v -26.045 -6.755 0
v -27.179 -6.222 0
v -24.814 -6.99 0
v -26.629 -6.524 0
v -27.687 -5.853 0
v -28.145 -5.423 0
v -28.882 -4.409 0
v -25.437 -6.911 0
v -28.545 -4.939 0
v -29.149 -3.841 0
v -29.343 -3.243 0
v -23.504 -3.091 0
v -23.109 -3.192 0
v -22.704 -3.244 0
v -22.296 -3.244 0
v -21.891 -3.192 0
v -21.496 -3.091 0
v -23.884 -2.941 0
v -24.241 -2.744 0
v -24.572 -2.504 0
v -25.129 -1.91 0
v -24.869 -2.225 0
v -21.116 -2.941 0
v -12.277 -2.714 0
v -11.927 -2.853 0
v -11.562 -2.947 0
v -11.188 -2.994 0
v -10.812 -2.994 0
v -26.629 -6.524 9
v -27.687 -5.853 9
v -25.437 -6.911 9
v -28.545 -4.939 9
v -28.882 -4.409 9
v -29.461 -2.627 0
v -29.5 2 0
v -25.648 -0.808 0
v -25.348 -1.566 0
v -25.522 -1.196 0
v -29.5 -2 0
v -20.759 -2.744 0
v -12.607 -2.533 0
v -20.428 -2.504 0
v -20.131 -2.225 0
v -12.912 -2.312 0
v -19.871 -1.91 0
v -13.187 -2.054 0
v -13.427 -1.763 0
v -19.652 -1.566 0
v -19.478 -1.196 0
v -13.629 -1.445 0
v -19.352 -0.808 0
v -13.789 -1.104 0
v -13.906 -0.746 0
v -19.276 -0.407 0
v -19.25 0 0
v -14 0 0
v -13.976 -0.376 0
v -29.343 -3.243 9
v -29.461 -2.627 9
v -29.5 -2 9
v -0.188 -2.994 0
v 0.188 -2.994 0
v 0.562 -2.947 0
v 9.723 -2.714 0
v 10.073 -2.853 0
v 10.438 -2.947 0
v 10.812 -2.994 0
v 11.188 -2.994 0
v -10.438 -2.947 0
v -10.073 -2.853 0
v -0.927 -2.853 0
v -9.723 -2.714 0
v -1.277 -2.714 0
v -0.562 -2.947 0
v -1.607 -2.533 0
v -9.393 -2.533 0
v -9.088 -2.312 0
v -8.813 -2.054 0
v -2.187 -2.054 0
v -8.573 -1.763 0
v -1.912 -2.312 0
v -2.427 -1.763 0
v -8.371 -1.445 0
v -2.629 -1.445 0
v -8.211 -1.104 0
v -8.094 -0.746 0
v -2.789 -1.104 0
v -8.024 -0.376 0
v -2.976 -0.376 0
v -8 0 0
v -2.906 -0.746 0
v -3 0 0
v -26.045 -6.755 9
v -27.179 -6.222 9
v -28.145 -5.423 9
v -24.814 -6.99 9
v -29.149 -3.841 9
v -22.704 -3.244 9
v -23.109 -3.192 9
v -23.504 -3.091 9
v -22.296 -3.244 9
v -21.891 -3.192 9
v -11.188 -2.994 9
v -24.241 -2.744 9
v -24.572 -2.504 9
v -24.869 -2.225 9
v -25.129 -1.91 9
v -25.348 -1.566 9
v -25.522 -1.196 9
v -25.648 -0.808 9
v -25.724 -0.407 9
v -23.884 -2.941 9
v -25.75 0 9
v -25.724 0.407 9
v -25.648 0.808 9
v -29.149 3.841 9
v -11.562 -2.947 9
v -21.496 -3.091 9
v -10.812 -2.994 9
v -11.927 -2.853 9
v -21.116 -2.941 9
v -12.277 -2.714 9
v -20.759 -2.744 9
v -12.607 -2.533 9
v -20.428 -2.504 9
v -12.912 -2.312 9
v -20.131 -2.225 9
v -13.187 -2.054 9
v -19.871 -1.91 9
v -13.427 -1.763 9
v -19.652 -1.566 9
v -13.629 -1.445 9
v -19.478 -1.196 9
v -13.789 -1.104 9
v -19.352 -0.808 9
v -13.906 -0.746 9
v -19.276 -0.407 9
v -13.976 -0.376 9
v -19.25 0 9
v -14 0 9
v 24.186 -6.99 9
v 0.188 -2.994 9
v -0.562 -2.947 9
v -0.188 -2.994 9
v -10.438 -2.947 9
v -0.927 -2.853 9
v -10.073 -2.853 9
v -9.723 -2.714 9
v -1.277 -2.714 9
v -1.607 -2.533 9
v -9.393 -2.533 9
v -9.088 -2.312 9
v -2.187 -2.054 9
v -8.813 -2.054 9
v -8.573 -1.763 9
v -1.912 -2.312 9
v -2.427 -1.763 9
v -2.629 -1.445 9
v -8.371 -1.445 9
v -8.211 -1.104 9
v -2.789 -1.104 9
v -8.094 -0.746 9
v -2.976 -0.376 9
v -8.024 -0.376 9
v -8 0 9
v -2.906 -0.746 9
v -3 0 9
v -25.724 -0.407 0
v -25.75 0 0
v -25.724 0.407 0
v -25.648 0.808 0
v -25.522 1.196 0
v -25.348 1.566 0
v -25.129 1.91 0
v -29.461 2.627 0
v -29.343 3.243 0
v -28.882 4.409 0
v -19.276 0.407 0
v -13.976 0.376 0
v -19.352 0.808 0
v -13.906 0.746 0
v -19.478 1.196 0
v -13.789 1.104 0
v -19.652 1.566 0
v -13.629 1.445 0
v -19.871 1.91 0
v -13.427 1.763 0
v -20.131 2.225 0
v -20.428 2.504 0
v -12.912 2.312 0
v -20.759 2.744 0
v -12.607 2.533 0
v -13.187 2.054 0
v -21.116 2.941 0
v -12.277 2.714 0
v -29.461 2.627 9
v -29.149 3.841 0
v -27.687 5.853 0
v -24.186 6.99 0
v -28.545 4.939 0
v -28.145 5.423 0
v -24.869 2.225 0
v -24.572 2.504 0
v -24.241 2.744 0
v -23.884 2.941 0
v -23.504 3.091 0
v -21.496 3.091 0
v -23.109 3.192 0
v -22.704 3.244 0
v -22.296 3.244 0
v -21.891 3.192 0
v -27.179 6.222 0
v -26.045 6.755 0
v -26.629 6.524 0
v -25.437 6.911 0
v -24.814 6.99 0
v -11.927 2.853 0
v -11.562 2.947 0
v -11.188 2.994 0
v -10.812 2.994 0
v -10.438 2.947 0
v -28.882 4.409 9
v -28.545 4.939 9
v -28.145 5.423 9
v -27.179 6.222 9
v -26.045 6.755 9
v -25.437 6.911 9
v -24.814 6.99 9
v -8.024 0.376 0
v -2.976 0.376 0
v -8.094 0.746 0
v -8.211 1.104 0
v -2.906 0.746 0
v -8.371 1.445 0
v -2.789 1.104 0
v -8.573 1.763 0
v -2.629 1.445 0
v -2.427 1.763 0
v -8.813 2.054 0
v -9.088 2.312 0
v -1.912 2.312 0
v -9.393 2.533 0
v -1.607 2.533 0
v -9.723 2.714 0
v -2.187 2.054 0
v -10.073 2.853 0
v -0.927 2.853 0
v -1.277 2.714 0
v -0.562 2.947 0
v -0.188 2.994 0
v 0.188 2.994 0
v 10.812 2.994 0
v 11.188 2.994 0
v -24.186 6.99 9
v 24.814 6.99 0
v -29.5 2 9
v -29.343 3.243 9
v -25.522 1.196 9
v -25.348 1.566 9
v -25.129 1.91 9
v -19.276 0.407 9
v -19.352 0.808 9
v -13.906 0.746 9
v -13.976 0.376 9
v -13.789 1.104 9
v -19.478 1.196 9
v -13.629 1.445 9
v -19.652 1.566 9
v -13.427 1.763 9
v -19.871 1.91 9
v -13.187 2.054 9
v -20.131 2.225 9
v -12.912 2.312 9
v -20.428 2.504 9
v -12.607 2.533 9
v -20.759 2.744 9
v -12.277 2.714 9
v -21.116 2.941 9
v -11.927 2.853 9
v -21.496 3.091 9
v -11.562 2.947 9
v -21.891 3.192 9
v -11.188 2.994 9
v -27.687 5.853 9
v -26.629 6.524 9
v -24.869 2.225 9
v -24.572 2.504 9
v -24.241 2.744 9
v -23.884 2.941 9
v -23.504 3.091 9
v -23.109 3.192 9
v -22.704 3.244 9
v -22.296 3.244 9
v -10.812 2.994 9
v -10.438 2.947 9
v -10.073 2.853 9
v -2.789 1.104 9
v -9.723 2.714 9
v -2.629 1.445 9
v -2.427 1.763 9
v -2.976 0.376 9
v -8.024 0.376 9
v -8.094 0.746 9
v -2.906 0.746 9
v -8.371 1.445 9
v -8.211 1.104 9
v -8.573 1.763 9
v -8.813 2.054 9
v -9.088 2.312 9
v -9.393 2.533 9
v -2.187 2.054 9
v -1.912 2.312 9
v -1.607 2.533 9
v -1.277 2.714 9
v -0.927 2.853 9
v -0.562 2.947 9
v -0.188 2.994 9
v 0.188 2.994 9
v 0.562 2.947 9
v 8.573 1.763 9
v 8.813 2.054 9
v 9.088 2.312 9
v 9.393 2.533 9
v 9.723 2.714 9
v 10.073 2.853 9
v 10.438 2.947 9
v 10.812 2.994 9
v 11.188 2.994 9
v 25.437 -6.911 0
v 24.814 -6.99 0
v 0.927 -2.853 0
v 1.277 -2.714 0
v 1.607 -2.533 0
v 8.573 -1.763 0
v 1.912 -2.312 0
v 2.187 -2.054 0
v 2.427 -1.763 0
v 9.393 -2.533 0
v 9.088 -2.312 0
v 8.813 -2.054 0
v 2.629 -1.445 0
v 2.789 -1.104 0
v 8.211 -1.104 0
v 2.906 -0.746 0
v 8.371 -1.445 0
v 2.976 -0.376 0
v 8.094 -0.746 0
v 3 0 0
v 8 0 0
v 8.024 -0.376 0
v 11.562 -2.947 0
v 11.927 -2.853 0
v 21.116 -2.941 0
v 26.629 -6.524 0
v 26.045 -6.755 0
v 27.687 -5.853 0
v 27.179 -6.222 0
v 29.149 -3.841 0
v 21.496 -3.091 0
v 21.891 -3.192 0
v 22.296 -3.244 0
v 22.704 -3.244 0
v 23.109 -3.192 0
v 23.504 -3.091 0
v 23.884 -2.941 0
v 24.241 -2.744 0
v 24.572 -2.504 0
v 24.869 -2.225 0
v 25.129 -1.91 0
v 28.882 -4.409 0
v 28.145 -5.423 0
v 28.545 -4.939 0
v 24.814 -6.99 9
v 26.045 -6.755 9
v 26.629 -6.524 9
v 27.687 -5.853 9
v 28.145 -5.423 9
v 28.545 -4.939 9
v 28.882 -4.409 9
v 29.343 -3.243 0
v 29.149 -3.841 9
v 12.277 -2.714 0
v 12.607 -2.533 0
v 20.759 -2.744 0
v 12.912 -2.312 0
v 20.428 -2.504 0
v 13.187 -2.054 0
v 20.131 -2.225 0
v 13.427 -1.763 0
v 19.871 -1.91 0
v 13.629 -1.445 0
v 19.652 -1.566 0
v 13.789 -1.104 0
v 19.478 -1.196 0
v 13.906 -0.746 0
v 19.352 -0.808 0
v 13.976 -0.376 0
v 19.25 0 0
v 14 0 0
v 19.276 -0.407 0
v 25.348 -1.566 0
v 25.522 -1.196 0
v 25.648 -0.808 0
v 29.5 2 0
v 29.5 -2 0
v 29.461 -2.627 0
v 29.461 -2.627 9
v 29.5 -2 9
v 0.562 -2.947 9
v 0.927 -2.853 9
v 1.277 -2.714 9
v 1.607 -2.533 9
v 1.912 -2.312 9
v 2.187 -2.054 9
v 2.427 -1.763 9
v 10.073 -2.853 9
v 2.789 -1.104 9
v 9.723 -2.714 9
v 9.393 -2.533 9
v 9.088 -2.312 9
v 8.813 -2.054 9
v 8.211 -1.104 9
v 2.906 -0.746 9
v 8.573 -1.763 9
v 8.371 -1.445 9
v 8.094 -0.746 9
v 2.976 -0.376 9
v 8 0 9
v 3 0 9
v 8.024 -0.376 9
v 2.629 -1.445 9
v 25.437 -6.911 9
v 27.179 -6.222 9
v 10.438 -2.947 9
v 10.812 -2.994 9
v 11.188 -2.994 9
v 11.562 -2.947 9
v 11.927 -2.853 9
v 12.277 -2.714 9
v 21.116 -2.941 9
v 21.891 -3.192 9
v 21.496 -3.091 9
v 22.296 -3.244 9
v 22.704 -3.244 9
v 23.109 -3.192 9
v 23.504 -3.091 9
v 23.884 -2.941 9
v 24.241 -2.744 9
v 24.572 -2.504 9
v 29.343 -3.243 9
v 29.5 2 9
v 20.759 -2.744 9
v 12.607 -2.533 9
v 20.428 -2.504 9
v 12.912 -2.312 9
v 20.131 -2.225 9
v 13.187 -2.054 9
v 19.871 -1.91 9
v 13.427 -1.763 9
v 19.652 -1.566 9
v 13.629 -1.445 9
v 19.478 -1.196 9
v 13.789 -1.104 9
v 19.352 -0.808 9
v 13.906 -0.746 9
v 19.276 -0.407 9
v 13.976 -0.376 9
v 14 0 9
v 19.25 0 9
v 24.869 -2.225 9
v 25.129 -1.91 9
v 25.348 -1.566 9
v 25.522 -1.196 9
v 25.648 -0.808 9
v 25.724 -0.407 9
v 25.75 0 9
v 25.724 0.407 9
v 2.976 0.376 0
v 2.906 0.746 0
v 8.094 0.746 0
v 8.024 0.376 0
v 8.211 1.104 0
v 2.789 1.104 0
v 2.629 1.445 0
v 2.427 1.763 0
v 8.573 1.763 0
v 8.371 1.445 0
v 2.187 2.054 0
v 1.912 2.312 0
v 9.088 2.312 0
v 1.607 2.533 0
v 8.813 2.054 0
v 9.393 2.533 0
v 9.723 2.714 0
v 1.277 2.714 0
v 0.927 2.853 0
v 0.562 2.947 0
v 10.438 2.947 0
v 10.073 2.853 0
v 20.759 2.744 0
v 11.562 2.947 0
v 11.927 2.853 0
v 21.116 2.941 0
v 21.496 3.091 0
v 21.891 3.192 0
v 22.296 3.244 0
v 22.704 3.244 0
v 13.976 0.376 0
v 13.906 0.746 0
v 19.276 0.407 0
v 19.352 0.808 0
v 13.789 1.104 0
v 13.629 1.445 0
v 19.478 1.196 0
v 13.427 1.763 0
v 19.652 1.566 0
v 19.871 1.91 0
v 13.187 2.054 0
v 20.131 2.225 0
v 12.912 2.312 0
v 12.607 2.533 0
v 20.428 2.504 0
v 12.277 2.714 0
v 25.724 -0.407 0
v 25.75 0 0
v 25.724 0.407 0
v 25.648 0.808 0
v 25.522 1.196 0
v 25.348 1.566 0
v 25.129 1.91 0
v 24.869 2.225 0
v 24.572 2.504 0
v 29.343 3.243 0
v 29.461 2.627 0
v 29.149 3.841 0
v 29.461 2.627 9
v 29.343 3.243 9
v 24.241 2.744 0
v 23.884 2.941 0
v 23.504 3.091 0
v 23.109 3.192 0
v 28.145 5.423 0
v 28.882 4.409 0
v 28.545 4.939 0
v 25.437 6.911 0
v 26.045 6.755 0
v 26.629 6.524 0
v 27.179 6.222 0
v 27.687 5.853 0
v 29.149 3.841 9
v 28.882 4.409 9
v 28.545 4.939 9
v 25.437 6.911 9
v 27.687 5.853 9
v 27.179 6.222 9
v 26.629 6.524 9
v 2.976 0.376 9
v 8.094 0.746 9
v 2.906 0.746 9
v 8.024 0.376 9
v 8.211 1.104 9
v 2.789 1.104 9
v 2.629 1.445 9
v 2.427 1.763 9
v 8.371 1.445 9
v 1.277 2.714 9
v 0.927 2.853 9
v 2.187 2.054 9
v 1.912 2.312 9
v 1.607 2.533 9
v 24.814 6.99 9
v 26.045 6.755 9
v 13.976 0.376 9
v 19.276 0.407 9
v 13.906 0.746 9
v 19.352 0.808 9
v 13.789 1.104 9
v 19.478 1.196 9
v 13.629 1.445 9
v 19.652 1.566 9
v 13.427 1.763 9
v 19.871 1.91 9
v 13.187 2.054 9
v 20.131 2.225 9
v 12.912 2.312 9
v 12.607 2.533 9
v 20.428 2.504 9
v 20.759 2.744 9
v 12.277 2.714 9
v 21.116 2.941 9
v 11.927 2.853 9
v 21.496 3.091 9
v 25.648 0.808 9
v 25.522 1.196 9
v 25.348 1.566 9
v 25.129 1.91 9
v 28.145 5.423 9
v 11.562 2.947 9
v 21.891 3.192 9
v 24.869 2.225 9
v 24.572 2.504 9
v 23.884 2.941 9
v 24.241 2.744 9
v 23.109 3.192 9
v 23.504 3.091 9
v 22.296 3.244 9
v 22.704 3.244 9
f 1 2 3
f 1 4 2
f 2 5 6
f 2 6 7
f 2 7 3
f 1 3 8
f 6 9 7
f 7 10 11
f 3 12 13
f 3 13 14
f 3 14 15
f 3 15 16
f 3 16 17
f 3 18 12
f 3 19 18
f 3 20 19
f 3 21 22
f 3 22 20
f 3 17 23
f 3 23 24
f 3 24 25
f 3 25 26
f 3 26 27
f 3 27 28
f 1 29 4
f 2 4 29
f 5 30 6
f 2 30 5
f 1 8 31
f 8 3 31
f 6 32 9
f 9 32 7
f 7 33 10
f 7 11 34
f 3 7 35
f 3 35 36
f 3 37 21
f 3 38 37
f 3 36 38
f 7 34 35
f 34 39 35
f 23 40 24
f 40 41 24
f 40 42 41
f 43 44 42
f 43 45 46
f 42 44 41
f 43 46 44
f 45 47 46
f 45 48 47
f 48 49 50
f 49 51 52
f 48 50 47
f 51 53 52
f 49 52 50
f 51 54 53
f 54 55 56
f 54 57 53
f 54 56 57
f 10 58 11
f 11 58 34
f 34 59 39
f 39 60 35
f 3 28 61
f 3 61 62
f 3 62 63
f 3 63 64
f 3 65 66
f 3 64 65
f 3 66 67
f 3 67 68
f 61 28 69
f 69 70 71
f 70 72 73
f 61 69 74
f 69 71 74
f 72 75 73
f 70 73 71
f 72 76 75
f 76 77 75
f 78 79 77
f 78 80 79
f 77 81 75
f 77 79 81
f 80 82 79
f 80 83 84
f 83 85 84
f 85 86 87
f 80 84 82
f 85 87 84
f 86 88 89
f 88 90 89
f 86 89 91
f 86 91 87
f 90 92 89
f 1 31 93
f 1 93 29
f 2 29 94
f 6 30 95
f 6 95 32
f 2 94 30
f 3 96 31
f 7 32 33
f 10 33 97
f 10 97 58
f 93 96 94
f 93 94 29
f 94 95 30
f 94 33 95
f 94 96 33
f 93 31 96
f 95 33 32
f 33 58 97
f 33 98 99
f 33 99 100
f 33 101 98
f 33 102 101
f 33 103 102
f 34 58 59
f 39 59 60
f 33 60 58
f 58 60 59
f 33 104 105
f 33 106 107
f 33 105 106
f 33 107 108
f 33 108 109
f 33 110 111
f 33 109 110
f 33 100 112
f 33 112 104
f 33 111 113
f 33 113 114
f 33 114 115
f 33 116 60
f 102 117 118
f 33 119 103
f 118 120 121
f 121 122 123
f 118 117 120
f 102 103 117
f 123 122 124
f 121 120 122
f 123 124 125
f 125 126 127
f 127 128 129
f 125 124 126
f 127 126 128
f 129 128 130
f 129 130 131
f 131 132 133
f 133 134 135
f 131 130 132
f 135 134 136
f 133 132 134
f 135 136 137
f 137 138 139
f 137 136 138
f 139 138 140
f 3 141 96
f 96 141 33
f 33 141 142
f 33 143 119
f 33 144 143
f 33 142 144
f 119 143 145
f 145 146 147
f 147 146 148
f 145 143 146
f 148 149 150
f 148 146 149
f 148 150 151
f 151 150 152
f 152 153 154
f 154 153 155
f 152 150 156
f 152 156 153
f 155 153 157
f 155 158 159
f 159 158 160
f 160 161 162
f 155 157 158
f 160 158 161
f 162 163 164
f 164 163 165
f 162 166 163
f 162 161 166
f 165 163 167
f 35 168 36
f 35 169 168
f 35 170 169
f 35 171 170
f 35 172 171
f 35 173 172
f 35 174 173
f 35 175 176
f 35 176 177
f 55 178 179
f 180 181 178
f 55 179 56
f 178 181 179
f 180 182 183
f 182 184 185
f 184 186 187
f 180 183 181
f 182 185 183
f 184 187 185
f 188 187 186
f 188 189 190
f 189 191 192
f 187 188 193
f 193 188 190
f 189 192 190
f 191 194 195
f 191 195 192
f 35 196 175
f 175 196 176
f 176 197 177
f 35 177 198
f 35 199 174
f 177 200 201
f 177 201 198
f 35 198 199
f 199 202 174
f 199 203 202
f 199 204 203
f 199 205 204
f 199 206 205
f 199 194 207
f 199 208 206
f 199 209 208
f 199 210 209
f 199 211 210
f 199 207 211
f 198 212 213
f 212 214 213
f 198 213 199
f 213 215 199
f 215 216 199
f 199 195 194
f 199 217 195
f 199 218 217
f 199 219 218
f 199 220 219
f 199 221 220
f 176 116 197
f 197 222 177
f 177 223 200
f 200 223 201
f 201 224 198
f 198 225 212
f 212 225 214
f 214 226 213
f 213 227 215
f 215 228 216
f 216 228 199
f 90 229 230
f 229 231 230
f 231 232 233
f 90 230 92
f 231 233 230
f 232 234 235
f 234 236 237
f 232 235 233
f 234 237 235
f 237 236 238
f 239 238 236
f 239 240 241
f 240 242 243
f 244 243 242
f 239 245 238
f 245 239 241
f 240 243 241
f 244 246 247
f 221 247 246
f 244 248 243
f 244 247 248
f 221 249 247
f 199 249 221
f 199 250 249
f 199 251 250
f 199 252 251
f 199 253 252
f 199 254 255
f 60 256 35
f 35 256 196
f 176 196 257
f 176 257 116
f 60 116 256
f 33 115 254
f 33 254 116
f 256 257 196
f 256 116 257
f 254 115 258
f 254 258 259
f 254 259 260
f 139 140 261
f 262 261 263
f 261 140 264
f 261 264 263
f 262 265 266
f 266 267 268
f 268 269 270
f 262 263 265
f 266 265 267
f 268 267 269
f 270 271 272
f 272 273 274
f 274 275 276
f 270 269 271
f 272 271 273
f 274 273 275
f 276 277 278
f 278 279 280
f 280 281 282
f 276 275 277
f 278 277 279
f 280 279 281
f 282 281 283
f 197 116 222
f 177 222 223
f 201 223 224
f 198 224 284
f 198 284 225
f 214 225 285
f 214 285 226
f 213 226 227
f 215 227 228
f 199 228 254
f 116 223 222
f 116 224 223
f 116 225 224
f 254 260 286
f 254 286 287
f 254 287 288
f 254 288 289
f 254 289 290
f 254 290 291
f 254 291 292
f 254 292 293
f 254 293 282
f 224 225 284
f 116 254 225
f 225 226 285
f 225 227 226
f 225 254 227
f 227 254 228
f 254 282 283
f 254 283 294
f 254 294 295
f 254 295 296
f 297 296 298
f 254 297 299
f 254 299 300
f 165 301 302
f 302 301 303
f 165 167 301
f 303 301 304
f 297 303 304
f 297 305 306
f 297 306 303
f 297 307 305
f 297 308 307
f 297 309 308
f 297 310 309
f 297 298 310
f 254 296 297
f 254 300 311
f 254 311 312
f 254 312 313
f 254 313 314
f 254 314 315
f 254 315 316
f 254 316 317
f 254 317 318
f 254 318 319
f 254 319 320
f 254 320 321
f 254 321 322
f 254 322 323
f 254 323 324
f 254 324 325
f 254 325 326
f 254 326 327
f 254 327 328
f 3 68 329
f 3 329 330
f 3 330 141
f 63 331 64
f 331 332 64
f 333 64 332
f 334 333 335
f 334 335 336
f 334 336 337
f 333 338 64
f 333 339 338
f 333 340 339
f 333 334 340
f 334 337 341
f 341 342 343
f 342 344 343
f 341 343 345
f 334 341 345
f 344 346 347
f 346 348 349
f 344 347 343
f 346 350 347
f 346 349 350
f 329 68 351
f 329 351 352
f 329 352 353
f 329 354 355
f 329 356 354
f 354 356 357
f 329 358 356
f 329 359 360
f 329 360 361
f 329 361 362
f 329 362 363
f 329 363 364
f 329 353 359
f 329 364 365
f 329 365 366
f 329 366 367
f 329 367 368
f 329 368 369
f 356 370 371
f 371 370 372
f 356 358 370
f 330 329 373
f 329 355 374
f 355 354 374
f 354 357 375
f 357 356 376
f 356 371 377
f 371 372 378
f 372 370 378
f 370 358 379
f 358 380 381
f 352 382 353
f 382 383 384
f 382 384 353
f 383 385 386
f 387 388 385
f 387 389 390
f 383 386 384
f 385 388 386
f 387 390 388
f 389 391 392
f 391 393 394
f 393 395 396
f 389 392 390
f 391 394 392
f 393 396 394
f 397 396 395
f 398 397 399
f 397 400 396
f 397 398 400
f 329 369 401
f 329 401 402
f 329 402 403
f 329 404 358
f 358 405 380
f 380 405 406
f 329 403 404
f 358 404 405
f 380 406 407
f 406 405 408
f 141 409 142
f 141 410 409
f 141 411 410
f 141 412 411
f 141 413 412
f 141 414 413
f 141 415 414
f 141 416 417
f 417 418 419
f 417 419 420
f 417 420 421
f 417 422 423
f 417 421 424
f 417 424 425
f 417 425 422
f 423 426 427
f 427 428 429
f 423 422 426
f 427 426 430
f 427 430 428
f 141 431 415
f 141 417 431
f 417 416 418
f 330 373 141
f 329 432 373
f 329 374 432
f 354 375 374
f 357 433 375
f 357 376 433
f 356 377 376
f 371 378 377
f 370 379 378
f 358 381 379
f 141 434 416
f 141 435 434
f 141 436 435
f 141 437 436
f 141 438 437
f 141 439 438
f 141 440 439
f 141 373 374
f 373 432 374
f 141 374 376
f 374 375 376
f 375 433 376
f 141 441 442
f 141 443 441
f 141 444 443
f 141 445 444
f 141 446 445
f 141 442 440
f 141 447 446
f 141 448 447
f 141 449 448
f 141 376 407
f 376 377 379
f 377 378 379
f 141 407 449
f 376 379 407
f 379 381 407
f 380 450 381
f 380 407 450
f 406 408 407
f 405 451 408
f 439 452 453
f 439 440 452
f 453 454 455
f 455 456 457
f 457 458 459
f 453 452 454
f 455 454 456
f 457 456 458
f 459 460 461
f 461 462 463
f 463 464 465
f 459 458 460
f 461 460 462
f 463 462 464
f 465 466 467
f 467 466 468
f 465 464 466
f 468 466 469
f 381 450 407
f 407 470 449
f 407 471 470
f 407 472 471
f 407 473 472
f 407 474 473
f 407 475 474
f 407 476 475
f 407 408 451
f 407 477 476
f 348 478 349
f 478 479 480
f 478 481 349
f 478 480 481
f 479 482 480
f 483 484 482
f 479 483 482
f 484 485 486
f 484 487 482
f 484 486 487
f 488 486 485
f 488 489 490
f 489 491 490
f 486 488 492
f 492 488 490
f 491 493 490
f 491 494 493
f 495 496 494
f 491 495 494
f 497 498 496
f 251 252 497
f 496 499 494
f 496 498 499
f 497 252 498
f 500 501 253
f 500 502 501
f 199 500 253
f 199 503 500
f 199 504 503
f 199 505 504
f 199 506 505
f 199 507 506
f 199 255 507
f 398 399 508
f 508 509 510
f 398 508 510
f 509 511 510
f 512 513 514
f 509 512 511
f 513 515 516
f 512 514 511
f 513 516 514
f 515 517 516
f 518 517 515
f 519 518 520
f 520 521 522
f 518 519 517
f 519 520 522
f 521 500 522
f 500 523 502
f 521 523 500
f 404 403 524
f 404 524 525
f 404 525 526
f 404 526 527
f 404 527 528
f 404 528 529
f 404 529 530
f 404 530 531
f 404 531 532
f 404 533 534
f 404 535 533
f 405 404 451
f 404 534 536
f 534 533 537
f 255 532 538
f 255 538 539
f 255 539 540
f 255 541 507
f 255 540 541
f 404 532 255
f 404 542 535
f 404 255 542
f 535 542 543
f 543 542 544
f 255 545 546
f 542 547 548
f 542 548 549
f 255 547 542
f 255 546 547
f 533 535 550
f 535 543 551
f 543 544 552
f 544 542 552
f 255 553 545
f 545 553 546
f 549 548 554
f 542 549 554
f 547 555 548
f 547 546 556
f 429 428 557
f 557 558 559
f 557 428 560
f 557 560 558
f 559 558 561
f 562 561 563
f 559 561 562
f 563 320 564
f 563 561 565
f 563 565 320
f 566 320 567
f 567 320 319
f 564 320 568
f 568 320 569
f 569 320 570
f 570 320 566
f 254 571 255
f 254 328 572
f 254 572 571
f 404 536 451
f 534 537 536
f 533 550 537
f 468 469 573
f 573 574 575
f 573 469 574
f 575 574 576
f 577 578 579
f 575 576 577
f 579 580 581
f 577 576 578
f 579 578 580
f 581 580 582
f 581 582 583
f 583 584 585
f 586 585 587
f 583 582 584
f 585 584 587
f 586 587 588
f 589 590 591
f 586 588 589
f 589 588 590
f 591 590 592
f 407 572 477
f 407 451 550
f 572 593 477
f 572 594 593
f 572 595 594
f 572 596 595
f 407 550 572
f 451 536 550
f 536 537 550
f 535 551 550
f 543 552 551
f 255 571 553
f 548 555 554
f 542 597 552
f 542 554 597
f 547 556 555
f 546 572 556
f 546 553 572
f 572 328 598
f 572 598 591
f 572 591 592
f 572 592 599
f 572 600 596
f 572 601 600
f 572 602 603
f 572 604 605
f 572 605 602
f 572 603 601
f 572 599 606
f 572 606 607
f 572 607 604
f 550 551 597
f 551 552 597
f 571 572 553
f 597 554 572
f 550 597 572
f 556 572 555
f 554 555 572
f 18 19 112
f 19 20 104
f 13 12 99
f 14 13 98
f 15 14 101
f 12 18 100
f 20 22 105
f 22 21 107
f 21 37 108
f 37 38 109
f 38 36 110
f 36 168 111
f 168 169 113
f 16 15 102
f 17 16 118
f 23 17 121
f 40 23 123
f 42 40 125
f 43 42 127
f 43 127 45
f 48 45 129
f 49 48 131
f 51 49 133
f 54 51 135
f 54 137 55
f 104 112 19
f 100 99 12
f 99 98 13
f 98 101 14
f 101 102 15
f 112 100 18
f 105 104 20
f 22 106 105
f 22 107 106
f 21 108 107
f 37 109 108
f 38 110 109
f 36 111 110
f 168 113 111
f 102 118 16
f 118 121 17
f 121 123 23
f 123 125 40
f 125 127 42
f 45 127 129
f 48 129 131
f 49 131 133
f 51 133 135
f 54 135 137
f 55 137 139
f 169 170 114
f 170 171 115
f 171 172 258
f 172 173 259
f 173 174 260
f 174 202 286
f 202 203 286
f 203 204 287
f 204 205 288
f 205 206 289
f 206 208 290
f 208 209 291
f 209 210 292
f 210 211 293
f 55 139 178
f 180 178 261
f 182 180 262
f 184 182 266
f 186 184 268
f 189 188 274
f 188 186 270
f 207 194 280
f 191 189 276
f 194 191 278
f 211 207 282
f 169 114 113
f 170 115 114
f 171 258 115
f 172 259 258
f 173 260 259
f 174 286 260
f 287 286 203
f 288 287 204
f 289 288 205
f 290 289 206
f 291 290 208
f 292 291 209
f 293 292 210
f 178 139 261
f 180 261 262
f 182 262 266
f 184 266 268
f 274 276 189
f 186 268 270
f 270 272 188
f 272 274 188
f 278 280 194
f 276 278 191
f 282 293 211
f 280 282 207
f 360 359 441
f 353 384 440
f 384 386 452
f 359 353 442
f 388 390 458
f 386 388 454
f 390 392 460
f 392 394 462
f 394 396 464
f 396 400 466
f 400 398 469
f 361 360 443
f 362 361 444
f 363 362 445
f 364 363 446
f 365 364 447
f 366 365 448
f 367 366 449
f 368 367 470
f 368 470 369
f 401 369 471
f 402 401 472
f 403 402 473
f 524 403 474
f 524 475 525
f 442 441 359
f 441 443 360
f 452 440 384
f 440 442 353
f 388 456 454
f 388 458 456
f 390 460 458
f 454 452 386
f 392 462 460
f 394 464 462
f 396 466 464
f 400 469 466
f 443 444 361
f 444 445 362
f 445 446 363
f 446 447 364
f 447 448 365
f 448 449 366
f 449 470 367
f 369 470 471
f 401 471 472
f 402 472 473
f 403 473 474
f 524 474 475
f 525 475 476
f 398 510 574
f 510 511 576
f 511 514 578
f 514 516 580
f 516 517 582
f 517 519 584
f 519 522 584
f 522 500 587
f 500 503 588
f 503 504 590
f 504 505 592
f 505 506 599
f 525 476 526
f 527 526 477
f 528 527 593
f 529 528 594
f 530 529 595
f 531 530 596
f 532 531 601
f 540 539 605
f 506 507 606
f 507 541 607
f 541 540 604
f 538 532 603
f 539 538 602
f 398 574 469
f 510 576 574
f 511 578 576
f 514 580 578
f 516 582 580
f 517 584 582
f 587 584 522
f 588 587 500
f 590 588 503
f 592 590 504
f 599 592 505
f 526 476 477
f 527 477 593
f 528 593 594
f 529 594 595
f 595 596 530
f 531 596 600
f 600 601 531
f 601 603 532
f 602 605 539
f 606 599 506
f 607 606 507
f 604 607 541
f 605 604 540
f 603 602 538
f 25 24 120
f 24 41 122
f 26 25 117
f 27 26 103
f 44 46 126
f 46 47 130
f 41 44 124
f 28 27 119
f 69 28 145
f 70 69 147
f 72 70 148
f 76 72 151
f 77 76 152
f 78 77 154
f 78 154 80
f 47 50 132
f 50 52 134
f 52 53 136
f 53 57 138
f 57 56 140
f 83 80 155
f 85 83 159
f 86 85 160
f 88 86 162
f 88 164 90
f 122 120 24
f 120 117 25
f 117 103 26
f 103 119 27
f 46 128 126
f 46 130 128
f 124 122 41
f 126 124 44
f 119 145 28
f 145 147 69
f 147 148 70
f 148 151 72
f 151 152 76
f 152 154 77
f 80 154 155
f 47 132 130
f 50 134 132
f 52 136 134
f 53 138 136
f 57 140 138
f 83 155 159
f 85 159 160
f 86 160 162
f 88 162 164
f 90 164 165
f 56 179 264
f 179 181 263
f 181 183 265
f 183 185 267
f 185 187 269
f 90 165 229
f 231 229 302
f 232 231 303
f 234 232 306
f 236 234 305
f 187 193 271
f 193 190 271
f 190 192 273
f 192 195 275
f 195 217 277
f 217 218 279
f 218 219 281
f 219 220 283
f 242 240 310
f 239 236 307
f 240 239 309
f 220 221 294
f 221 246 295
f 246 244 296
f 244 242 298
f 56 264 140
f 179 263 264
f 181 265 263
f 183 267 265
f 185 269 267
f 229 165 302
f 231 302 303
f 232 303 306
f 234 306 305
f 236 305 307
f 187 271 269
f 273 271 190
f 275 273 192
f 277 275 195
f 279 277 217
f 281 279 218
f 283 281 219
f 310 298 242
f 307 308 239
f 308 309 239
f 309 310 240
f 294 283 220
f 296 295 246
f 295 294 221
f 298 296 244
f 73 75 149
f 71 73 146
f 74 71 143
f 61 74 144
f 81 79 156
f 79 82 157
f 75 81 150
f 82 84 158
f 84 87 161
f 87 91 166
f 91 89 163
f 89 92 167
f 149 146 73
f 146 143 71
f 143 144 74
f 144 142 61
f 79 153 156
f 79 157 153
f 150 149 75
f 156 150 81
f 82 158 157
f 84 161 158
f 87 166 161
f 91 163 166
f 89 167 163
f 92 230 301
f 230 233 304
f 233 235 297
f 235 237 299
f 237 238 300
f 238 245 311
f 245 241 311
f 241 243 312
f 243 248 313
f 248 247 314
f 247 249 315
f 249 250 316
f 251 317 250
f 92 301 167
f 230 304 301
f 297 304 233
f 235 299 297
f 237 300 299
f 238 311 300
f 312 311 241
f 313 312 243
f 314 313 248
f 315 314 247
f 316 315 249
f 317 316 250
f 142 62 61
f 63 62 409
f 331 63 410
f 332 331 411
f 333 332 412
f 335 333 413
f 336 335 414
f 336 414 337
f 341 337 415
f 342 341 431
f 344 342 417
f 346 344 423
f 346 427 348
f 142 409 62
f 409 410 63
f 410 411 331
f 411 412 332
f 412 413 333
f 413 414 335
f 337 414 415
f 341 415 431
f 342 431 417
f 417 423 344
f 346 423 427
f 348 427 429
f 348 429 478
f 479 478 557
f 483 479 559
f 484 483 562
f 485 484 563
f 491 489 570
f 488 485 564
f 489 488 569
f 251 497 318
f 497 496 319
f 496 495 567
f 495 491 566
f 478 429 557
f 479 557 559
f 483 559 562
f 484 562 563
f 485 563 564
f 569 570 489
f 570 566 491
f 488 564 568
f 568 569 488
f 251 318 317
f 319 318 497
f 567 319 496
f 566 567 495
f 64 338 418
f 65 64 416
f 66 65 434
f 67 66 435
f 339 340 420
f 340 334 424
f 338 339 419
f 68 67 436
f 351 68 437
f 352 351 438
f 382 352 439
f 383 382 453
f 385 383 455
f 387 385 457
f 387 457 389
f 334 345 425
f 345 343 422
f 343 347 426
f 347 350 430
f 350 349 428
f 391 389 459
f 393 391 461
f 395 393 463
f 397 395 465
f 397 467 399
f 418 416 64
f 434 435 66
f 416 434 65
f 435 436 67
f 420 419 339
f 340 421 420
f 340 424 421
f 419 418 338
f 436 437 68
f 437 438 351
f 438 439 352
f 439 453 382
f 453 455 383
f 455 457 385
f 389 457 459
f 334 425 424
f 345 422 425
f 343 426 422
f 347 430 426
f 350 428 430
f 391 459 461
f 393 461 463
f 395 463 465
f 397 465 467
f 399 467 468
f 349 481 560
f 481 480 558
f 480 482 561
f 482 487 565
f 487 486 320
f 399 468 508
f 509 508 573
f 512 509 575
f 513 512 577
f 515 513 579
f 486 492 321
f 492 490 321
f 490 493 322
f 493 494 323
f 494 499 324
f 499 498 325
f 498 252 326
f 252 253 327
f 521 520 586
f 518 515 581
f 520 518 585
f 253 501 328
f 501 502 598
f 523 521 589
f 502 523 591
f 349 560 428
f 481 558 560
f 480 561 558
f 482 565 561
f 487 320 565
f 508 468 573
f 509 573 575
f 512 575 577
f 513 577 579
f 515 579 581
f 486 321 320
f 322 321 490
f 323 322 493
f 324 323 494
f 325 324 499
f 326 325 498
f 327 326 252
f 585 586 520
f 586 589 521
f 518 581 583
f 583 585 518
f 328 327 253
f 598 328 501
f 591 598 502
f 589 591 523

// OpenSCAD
$fn = 50;

difference() {
	union() {
		hull() {
			translate(v = [-24.5, 2.0, 0]) {
				cylinder(h = 9, r = 5);
			}
			translate(v = [24.5, 2.0, 0]) {
				cylinder(h = 9, r = 5);
			}
			translate(v = [-24.5, -2.0, 0]) {
				cylinder(h = 9, r = 5);
			}
			translate(v = [24.5, -2.0, 0]) {
				cylinder(h = 9, r = 5);
			}
		}
	}
	union() {
		translate(v = [-22.5, 0.0, 0]) {
			cylinder(h = 9, r = 3.25);
		}
		translate(v = [22.5, 0.0, 0]) {
			cylinder(h = 9, r = 3.25);
		}
		translate(v = [-11.0, 0, 0.0]) {
			cylinder(h = 9, r = 3.0);
		}
		cylinder(h = 9, r = 3.0);
		translate(v = [11.0, 0, 0.0]) {
			cylinder(h = 9, r = 3.0);
		}
	}
}
